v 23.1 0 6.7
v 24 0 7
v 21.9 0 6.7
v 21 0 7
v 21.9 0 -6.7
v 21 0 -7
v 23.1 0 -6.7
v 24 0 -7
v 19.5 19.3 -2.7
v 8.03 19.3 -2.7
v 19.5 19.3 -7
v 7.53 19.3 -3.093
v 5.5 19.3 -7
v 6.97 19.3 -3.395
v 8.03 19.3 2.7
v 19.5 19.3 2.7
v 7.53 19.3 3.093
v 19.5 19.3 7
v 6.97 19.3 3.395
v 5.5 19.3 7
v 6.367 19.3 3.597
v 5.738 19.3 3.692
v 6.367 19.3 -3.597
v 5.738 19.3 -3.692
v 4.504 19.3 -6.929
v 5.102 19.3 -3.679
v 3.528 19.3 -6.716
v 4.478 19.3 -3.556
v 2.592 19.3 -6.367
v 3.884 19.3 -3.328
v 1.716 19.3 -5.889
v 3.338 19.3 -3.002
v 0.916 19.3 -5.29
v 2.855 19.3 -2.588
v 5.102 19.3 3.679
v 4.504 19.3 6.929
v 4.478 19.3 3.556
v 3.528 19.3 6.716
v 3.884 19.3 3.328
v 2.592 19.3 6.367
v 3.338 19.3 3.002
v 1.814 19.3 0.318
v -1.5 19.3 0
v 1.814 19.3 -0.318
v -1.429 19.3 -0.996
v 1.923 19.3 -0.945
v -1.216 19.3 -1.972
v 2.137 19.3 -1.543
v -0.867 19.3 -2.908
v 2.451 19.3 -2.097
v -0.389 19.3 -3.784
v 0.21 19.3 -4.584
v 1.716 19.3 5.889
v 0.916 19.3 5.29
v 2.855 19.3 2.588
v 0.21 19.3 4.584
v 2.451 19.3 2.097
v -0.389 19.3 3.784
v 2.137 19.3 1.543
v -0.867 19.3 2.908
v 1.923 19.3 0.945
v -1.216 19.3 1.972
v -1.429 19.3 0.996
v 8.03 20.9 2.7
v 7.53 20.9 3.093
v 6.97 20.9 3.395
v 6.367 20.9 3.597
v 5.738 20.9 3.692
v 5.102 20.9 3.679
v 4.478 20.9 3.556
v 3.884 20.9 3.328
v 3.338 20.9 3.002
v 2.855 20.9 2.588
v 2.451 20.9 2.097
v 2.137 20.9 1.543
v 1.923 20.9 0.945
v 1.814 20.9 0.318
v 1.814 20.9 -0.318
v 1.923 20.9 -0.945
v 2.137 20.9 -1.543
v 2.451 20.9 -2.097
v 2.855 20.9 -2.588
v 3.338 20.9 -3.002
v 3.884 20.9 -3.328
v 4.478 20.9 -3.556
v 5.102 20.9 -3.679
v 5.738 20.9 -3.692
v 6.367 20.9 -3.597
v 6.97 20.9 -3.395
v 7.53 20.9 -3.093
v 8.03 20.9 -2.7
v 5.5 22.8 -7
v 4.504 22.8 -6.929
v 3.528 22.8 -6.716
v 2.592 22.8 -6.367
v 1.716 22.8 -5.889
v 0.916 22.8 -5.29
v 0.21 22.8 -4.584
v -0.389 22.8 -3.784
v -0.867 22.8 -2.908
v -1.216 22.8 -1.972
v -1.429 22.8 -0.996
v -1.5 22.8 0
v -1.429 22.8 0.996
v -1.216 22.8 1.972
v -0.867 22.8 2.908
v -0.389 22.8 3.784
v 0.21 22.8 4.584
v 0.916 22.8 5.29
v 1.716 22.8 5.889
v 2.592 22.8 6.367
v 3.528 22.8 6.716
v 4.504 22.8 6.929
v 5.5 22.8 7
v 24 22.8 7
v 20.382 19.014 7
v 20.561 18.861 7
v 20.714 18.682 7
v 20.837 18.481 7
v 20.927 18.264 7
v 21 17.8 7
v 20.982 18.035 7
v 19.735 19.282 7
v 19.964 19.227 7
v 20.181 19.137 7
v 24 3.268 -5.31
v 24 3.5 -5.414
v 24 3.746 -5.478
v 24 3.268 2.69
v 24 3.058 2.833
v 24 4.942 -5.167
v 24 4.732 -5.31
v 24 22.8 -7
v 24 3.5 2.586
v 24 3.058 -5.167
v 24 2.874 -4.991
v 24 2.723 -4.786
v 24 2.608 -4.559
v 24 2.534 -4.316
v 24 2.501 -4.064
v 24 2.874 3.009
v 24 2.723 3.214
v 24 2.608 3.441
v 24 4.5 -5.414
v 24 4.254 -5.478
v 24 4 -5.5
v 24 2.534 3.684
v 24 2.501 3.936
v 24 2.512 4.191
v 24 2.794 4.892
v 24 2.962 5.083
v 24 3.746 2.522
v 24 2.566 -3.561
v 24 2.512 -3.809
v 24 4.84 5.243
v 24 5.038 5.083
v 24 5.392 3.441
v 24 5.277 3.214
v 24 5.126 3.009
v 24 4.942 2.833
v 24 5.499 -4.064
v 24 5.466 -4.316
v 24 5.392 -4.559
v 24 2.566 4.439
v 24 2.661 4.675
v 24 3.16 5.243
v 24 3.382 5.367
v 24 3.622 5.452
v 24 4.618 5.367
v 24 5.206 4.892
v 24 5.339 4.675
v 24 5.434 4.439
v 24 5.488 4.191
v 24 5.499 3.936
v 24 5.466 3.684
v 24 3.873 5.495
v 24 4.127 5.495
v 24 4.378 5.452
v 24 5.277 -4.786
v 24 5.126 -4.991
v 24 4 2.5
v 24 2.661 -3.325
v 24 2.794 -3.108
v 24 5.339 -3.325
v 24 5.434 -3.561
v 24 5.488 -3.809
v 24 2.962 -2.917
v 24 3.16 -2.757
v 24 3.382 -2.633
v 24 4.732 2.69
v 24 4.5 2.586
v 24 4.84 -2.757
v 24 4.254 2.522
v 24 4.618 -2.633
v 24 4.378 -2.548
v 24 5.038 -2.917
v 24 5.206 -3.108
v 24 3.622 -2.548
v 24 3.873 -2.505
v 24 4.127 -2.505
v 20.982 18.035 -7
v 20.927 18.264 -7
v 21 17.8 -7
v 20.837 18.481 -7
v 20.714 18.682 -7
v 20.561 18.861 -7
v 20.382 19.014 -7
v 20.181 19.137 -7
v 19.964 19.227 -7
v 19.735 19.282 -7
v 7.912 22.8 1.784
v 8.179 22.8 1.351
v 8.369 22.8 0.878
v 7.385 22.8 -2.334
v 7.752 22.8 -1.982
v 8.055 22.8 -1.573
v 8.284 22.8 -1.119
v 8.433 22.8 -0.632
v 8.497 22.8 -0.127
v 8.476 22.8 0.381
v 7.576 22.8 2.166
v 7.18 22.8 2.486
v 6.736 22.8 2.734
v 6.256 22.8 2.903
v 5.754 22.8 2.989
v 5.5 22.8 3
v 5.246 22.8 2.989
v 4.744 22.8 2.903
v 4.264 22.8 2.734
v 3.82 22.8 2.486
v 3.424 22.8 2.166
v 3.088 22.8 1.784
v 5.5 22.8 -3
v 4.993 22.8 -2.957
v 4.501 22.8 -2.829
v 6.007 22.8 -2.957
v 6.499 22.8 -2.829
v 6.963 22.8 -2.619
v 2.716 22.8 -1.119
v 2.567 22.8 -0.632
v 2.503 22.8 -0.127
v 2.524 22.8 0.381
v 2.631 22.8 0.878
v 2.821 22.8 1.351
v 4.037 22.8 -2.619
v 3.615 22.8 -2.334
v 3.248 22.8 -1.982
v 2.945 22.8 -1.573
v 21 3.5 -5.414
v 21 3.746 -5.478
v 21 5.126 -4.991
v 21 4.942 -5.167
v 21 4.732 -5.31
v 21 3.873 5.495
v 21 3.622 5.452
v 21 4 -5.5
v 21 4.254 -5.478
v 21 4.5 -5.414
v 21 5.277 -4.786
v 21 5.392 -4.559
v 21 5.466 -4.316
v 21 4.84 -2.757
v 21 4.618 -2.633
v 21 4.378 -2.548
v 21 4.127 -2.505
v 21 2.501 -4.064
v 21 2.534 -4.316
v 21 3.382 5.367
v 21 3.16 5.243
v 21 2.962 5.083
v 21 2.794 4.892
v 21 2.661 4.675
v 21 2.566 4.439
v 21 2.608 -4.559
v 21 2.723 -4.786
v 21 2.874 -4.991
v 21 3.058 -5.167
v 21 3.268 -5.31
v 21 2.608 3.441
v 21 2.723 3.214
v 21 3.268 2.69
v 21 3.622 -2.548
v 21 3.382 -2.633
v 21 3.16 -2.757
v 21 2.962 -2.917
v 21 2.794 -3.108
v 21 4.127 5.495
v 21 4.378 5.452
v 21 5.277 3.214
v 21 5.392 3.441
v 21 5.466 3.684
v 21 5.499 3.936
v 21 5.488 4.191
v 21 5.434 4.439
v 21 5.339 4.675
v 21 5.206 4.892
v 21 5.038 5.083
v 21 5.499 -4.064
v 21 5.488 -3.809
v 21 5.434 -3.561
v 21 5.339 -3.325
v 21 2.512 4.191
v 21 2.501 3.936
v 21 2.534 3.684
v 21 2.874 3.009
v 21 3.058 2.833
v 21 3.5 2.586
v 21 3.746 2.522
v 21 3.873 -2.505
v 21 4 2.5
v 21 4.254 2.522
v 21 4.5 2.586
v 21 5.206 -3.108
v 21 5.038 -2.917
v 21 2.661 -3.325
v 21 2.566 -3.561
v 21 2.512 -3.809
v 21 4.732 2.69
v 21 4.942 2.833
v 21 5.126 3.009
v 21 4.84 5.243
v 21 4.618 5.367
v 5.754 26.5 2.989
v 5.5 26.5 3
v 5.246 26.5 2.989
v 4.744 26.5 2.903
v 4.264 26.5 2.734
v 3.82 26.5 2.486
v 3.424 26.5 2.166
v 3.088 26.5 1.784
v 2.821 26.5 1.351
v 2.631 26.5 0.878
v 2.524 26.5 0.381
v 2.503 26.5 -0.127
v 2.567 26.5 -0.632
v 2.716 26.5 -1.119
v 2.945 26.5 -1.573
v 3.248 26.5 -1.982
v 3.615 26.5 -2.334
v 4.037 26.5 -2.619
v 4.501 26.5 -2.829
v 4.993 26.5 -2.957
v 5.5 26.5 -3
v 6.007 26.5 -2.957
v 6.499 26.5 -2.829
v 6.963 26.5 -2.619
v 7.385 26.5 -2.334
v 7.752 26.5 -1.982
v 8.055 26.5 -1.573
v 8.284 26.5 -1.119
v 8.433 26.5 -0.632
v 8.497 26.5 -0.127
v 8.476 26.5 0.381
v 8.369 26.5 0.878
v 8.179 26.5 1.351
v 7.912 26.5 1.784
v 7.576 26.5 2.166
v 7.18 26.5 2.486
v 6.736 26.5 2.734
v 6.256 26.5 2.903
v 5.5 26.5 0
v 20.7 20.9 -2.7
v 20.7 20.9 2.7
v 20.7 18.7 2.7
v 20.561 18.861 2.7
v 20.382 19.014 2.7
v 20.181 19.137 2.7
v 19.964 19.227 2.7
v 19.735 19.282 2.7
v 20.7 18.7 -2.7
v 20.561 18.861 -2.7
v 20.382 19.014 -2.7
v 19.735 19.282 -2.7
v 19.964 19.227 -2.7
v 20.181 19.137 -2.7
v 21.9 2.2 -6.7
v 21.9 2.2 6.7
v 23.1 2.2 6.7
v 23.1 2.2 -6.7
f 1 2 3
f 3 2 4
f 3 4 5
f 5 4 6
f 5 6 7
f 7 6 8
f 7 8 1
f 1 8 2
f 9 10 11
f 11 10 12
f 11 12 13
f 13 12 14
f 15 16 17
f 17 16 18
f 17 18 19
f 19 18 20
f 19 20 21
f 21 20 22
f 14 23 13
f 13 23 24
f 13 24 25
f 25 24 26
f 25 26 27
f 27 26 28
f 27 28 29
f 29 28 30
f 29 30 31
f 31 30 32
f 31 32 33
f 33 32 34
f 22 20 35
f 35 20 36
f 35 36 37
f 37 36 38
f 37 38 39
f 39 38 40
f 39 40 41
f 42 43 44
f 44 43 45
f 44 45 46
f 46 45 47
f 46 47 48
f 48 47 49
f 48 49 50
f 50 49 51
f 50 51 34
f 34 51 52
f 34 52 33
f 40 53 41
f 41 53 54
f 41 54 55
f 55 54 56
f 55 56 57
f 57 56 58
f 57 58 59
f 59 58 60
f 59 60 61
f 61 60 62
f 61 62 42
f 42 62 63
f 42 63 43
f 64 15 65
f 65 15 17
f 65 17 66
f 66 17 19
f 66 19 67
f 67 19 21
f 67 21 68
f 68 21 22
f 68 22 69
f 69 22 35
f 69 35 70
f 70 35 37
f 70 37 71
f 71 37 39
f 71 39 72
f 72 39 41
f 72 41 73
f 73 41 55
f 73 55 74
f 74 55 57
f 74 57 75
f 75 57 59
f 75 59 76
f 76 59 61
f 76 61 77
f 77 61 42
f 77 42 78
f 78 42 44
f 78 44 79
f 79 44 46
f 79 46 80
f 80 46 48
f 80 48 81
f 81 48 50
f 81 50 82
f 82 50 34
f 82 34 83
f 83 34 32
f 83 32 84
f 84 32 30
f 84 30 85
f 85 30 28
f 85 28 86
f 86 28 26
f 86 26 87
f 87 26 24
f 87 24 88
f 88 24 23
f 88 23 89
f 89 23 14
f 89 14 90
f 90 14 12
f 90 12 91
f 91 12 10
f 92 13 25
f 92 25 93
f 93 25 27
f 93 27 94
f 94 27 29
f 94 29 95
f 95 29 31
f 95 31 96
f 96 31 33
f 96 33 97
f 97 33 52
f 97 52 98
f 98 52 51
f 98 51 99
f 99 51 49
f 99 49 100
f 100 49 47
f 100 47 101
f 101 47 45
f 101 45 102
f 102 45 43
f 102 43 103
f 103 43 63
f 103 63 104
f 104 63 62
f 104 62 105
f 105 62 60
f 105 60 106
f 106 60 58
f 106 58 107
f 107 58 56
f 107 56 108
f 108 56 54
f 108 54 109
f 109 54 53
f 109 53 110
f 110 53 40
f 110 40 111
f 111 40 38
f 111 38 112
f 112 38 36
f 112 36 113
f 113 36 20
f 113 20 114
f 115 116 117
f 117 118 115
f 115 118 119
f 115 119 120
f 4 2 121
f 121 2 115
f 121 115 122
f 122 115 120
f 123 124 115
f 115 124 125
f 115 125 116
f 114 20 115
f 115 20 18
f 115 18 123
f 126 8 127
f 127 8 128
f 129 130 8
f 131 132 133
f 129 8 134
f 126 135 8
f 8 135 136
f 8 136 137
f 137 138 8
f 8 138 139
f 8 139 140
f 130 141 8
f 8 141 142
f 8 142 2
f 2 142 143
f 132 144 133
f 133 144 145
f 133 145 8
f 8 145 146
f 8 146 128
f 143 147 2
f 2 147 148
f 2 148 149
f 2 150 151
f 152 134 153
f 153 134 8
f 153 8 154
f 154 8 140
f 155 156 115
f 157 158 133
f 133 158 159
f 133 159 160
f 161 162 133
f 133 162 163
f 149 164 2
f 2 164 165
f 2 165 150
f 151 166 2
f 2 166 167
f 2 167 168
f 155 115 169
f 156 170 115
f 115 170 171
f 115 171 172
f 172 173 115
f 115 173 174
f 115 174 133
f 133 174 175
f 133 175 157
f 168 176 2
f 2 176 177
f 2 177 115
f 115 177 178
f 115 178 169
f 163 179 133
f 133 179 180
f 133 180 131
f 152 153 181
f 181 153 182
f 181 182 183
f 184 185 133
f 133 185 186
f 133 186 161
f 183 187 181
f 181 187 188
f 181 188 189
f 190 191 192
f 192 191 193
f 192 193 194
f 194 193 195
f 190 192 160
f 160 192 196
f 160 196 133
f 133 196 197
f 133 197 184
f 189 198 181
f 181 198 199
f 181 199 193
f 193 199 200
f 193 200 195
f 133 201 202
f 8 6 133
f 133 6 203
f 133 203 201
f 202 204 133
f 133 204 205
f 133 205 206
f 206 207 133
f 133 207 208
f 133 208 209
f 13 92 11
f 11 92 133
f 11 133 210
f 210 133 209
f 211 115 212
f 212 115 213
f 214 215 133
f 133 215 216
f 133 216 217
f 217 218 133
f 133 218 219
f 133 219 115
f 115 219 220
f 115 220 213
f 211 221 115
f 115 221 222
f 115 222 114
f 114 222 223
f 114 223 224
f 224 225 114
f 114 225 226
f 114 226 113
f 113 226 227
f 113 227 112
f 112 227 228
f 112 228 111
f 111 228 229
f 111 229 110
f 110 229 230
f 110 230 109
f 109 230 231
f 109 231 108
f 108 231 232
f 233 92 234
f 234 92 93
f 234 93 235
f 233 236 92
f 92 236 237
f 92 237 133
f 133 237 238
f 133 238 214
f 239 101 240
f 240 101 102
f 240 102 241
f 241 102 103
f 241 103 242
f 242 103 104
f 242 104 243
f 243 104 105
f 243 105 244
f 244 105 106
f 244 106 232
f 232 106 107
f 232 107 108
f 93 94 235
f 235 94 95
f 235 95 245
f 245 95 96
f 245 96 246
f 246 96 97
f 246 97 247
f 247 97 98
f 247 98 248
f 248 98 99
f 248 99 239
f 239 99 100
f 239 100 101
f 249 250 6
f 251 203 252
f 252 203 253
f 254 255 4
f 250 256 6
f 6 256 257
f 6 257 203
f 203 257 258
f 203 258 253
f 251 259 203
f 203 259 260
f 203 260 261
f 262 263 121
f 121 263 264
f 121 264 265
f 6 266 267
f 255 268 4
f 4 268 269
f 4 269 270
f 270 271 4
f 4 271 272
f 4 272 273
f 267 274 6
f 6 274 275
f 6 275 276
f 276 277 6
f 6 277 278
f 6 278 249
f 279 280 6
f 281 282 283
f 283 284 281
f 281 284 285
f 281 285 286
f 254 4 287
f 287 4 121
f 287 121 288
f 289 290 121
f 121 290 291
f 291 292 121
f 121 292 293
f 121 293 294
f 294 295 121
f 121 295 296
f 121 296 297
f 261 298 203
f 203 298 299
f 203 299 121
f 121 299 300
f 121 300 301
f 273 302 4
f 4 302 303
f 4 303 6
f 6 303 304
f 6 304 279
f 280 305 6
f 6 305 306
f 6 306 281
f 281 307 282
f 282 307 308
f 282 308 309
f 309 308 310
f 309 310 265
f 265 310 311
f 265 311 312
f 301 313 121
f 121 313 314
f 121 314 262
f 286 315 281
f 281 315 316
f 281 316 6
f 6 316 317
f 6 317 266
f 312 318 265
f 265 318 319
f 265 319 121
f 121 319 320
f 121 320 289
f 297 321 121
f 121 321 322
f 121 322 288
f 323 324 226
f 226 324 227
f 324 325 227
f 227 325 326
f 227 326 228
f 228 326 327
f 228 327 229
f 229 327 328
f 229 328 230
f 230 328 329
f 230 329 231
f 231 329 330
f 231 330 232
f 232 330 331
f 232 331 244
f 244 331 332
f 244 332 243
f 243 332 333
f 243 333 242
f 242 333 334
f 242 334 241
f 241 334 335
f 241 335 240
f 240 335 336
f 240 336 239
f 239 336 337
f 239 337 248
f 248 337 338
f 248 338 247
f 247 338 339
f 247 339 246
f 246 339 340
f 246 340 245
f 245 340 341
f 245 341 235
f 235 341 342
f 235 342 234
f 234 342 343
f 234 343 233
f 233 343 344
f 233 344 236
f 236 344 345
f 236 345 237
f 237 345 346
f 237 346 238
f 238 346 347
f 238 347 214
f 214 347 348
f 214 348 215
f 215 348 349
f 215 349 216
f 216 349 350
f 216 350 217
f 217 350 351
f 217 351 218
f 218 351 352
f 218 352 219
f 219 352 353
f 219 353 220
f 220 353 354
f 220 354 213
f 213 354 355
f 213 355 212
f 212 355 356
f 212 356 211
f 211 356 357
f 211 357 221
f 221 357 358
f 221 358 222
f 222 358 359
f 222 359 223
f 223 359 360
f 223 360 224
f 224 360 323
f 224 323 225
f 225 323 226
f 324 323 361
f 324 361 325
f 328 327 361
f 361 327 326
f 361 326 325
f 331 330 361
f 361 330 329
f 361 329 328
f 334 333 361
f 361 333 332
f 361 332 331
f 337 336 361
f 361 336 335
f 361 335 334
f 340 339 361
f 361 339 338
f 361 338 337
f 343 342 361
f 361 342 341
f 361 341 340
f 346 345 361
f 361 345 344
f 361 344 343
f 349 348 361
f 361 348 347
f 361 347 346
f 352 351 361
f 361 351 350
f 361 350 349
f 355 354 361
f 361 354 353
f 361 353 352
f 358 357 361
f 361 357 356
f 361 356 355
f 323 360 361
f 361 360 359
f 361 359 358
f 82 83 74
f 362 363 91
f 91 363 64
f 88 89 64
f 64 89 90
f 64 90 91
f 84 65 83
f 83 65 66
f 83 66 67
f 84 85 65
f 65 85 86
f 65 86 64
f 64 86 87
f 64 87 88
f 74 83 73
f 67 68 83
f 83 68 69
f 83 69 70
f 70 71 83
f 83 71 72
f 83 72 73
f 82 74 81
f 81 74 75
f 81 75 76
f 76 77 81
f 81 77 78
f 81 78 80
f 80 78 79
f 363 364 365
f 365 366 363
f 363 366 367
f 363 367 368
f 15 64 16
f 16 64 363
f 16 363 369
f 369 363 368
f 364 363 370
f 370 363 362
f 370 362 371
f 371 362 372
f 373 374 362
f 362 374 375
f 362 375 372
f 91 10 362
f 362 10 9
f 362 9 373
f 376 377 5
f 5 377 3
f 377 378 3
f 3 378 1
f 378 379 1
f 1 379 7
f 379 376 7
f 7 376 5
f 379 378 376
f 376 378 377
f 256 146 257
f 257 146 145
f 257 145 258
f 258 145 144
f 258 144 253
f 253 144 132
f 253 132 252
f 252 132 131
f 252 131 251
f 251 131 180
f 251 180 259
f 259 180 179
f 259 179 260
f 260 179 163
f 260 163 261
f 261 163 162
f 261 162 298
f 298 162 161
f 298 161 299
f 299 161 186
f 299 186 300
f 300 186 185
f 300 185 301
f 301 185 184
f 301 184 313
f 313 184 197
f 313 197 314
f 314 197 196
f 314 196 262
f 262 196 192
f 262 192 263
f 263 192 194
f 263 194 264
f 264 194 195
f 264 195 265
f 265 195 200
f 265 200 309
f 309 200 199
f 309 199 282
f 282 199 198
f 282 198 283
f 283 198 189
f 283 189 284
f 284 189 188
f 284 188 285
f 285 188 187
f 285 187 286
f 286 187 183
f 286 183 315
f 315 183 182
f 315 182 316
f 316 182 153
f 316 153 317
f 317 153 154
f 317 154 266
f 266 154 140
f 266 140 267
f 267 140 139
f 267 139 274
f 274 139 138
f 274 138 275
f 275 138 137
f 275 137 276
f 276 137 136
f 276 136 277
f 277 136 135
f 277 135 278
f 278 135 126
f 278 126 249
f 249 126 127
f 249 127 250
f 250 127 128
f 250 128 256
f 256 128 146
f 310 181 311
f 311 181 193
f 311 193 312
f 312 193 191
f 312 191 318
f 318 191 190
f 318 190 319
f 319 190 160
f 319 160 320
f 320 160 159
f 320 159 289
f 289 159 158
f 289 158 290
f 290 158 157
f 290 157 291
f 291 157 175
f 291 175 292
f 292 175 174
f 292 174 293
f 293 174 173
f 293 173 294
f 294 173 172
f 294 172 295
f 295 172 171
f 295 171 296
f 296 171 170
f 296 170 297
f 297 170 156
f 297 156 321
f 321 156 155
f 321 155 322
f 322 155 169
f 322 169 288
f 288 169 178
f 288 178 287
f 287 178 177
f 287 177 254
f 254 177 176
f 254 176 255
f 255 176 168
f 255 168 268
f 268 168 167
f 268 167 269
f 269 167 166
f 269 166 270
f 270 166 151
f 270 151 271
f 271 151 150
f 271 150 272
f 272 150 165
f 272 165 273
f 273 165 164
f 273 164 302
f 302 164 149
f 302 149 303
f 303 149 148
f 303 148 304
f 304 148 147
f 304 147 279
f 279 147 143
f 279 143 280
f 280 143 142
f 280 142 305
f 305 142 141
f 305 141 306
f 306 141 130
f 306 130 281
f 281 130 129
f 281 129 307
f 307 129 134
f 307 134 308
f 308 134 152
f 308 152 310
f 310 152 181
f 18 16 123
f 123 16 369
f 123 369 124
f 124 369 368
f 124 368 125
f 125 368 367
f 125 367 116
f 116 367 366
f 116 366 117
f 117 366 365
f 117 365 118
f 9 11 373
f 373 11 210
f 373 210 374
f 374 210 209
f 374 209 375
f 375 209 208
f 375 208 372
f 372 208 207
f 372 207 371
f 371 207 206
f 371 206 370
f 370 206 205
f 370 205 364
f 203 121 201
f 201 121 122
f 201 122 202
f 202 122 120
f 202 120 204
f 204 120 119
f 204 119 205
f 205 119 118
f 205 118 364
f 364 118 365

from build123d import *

# Parameters (mm, degrees)
BOSS_EXTRUDE1_DEPTH = 3.5
SKETCH2_W           = 3
SKETCH2_H           = 22.8
BOSS_EXTRUDE2_DEPTH = 7
SKETCH3_R           = 3
BOSS_EXTRUDE3_DEPTH = 3.7
SKETCH4_R           = 3.7
CUT_EXTRUDE2_DEPTH  = 1.6
CUT_EXTRUDE4_DEPTH  = 1.6
SKETCH6_W           = 1.2
SKETCH6_H           = 13.4
CUT_EXTRUDE6_DEPTH  = 2.2
SKETCH7_R           = 1.5
CUT_EXTRUDE7_DEPTH  = 3
FILLET1_R           = 1.5


with BuildPart() as part:
    # Sketch1 → Boss-Extrude1 (new body)
    with BuildSketch(Plane(origin=(0, 19.3, 0), x_dir=(1, 0, 0), z_dir=(0, 1, 0))):
        with BuildLine():
            Line((5.5, -7), (24, -7))
            Line((24, -7), (24, 7))
            Line((24, 7), (5.5, 7))
            ThreePointArc((5.5, 7), (-1.5, 0), (5.5, -7))
        make_face()
    extrude(amount=BOSS_EXTRUDE1_DEPTH)

    # Sketch2 → Boss-Extrude2 (add, symmetric)
    with BuildSketch(Plane.XY):
        with Locations((22.5, 11.4)):
            Rectangle(SKETCH2_W, SKETCH2_H)
    extrude(amount=BOSS_EXTRUDE2_DEPTH, both=True)

    # Sketch3 → Boss-Extrude3 (add)
    with BuildSketch(Plane(origin=(0, 22.8, 0), x_dir=(1, 0, 0), z_dir=(0, 1, 0))):
        with Locations(Location((5.5, 0, 0), (0, 0, 270))):
            Circle(SKETCH3_R)
    extrude(amount=BOSS_EXTRUDE3_DEPTH)

    # Sketch4 → Cut-Extrude2 (cut)
    with BuildSketch(Plane(origin=(0, 19.3, 0), x_dir=(1, 0, 0), z_dir=(0, 1, 0))):
        with Locations(Location((5.5, 0, 0), (0, 0, 270))):
            Circle(SKETCH4_R)
    extrude(amount=CUT_EXTRUDE2_DEPTH, mode=Mode.SUBTRACT)

    # Sketch5 → Cut-Extrude4 (cut)
    with BuildSketch(Plane(origin=(0, 19.3, 0), x_dir=(1, 0, 0), z_dir=(0, 1, 0))):
        with BuildLine():
            Line((5.5, -2.7), (20.7, -2.7))
            Line((20.7, -2.7), (20.7, 2.7))
            Line((20.7, 2.7), (5.5, 2.7))
            ThreePointArc((5.5, 2.7), (2.8, 0), (5.5, -2.7))
        make_face()
    extrude(amount=CUT_EXTRUDE4_DEPTH, mode=Mode.SUBTRACT)

    # Sketch6 → Cut-Extrude6 (cut)
    with BuildSketch(Plane(origin=(0, 0, 0), x_dir=(1, 0, 0), z_dir=(0, 1, 0))):
        with Locations((22.5, 0)):
            Rectangle(SKETCH6_W, SKETCH6_H)
    extrude(amount=CUT_EXTRUDE6_DEPTH, mode=Mode.SUBTRACT)

    # Sketch7 → Cut-Extrude7 (cut)
    with BuildSketch(Plane(origin=(24, 0, 0), x_dir=(0, 0, -1), z_dir=(1, 0, 0))):
        with Locations((-4, 4)):
            Circle(SKETCH7_R)
        with Locations((4, 4)):
            Circle(SKETCH7_R)
    extrude(amount=-CUT_EXTRUDE7_DEPTH, mode=Mode.SUBTRACT)

    # Fillet1
    # the kernel refuses this fillet: 1.5 mm, written as the material it adds along each edge
    with BuildSketch(Plane(origin=(21, 19.3, -7), x_dir=(-1, 0, 0), z_dir=(0, 0, 1))) as fillet1_piece_1_section:
        with BuildLine():
            CenterArc((FILLET1_R, FILLET1_R), FILLET1_R, 180, 90)
            Line((0, FILLET1_R), (0, 0))
            Line((0, 0), (FILLET1_R, 0))
        make_face()
    fillet1_piece_1 = extrude(amount=14, mode=Mode.PRIVATE)
    fillet1_piece_1 = split(fillet1_piece_1, bisect_by=Plane(origin=(20.368695353, 19.155022342, -2.7), z_dir=(0, 0, -1)), keep=Keep.TOP, mode=Mode.PRIVATE)
    fillet1_piece_1 = split(fillet1_piece_1, bisect_by=Plane(origin=(20.7, 19.155022342, -4.85), z_dir=(-1, 0, 0)), keep=Keep.TOP, mode=Mode.PRIVATE)
    add(fillet1_piece_1)
    with BuildSketch(Plane(origin=(21, 19.3, -7), x_dir=(-1, 0, 0), z_dir=(0, 0, 1))) as fillet1_piece_2_section:
        with BuildLine():
            CenterArc((FILLET1_R, FILLET1_R), FILLET1_R, 180, 90)
            Line((0, FILLET1_R), (0, 0))
            Line((0, 0), (FILLET1_R, 0))
        make_face()
    fillet1_piece_2 = extrude(amount=14, mode=Mode.PRIVATE)
    fillet1_piece_2 = split(fillet1_piece_2, bisect_by=Plane(origin=(20.890163131, 18.807126241, -2.7), z_dir=(0, 0, -1)), keep=Keep.TOP, mode=Mode.PRIVATE)
    fillet1_piece_2 = split(fillet1_piece_2, bisect_by=Plane(origin=(20.7, 18.807126241, -4.85), z_dir=(1, 0, 0)), keep=Keep.TOP, mode=Mode.PRIVATE)
    add(fillet1_piece_2)
    with BuildSketch(Plane(origin=(21, 19.3, -7), x_dir=(-1, 0, 0), z_dir=(0, 0, 1))) as fillet1_piece_3_section:
        with BuildLine():
            CenterArc((FILLET1_R, FILLET1_R), FILLET1_R, 180, 90)
            Line((0, FILLET1_R), (0, 0))
            Line((0, 0), (FILLET1_R, 0))
        make_face()
    fillet1_piece_3 = extrude(amount=14, mode=Mode.PRIVATE)
    fillet1_piece_3 = split(fillet1_piece_3, bisect_by=Plane(origin=(20.890163131, 18.807126241, 2.7), z_dir=(0, 0, -1)), keep=Keep.TOP, mode=Mode.PRIVATE)
    fillet1_piece_3 = split(fillet1_piece_3, bisect_by=Plane(origin=(20.890163131, 18.807126241, -2.7), z_dir=(0, 0, 1)), keep=Keep.TOP, mode=Mode.PRIVATE)
    fillet1_piece_3 = split(fillet1_piece_3, bisect_by=Plane(origin=(20.7, 18.807126241, 0), z_dir=(1, 0, 0)), keep=Keep.TOP, mode=Mode.PRIVATE)
    add(fillet1_piece_3)
    with BuildSketch(Plane(origin=(21, 19.3, -7), x_dir=(-1, 0, 0), z_dir=(0, 0, 1))) as fillet1_piece_4_section:
        with BuildLine():
            CenterArc((FILLET1_R, FILLET1_R), FILLET1_R, 180, 90)
            Line((0, FILLET1_R), (0, 0))
            Line((0, 0), (FILLET1_R, 0))
        make_face()
    fillet1_piece_4 = extrude(amount=14, mode=Mode.PRIVATE)
    fillet1_piece_4 = split(fillet1_piece_4, bisect_by=Plane(origin=(20.368695353, 19.155022342, 2.7), z_dir=(0, 0, 1)), keep=Keep.TOP, mode=Mode.PRIVATE)
    fillet1_piece_4 = split(fillet1_piece_4, bisect_by=Plane(origin=(20.7, 19.155022342, 4.85), z_dir=(-1, 0, 0)), keep=Keep.TOP, mode=Mode.PRIVATE)
    add(fillet1_piece_4)
    with BuildSketch(Plane(origin=(21, 19.3, -7), x_dir=(-1, 0, 0), z_dir=(0, 0, 1))) as fillet1_piece_5_section:
        with BuildLine():
            CenterArc((FILLET1_R, FILLET1_R), FILLET1_R, 180, 90)
            Line((0, FILLET1_R), (0, 0))
            Line((0, 0), (FILLET1_R, 0))
        make_face()
    fillet1_piece_5 = extrude(amount=14, mode=Mode.PRIVATE)
    fillet1_piece_5 = split(fillet1_piece_5, bisect_by=Plane(origin=(20.890163131, 18.807126241, 2.7), z_dir=(0, 0, 1)), keep=Keep.TOP, mode=Mode.PRIVATE)
    fillet1_piece_5 = split(fillet1_piece_5, bisect_by=Plane(origin=(20.7, 18.807126241, 4.85), z_dir=(1, 0, 0)), keep=Keep.TOP, mode=Mode.PRIVATE)
    add(fillet1_piece_5)


solid = part.part
